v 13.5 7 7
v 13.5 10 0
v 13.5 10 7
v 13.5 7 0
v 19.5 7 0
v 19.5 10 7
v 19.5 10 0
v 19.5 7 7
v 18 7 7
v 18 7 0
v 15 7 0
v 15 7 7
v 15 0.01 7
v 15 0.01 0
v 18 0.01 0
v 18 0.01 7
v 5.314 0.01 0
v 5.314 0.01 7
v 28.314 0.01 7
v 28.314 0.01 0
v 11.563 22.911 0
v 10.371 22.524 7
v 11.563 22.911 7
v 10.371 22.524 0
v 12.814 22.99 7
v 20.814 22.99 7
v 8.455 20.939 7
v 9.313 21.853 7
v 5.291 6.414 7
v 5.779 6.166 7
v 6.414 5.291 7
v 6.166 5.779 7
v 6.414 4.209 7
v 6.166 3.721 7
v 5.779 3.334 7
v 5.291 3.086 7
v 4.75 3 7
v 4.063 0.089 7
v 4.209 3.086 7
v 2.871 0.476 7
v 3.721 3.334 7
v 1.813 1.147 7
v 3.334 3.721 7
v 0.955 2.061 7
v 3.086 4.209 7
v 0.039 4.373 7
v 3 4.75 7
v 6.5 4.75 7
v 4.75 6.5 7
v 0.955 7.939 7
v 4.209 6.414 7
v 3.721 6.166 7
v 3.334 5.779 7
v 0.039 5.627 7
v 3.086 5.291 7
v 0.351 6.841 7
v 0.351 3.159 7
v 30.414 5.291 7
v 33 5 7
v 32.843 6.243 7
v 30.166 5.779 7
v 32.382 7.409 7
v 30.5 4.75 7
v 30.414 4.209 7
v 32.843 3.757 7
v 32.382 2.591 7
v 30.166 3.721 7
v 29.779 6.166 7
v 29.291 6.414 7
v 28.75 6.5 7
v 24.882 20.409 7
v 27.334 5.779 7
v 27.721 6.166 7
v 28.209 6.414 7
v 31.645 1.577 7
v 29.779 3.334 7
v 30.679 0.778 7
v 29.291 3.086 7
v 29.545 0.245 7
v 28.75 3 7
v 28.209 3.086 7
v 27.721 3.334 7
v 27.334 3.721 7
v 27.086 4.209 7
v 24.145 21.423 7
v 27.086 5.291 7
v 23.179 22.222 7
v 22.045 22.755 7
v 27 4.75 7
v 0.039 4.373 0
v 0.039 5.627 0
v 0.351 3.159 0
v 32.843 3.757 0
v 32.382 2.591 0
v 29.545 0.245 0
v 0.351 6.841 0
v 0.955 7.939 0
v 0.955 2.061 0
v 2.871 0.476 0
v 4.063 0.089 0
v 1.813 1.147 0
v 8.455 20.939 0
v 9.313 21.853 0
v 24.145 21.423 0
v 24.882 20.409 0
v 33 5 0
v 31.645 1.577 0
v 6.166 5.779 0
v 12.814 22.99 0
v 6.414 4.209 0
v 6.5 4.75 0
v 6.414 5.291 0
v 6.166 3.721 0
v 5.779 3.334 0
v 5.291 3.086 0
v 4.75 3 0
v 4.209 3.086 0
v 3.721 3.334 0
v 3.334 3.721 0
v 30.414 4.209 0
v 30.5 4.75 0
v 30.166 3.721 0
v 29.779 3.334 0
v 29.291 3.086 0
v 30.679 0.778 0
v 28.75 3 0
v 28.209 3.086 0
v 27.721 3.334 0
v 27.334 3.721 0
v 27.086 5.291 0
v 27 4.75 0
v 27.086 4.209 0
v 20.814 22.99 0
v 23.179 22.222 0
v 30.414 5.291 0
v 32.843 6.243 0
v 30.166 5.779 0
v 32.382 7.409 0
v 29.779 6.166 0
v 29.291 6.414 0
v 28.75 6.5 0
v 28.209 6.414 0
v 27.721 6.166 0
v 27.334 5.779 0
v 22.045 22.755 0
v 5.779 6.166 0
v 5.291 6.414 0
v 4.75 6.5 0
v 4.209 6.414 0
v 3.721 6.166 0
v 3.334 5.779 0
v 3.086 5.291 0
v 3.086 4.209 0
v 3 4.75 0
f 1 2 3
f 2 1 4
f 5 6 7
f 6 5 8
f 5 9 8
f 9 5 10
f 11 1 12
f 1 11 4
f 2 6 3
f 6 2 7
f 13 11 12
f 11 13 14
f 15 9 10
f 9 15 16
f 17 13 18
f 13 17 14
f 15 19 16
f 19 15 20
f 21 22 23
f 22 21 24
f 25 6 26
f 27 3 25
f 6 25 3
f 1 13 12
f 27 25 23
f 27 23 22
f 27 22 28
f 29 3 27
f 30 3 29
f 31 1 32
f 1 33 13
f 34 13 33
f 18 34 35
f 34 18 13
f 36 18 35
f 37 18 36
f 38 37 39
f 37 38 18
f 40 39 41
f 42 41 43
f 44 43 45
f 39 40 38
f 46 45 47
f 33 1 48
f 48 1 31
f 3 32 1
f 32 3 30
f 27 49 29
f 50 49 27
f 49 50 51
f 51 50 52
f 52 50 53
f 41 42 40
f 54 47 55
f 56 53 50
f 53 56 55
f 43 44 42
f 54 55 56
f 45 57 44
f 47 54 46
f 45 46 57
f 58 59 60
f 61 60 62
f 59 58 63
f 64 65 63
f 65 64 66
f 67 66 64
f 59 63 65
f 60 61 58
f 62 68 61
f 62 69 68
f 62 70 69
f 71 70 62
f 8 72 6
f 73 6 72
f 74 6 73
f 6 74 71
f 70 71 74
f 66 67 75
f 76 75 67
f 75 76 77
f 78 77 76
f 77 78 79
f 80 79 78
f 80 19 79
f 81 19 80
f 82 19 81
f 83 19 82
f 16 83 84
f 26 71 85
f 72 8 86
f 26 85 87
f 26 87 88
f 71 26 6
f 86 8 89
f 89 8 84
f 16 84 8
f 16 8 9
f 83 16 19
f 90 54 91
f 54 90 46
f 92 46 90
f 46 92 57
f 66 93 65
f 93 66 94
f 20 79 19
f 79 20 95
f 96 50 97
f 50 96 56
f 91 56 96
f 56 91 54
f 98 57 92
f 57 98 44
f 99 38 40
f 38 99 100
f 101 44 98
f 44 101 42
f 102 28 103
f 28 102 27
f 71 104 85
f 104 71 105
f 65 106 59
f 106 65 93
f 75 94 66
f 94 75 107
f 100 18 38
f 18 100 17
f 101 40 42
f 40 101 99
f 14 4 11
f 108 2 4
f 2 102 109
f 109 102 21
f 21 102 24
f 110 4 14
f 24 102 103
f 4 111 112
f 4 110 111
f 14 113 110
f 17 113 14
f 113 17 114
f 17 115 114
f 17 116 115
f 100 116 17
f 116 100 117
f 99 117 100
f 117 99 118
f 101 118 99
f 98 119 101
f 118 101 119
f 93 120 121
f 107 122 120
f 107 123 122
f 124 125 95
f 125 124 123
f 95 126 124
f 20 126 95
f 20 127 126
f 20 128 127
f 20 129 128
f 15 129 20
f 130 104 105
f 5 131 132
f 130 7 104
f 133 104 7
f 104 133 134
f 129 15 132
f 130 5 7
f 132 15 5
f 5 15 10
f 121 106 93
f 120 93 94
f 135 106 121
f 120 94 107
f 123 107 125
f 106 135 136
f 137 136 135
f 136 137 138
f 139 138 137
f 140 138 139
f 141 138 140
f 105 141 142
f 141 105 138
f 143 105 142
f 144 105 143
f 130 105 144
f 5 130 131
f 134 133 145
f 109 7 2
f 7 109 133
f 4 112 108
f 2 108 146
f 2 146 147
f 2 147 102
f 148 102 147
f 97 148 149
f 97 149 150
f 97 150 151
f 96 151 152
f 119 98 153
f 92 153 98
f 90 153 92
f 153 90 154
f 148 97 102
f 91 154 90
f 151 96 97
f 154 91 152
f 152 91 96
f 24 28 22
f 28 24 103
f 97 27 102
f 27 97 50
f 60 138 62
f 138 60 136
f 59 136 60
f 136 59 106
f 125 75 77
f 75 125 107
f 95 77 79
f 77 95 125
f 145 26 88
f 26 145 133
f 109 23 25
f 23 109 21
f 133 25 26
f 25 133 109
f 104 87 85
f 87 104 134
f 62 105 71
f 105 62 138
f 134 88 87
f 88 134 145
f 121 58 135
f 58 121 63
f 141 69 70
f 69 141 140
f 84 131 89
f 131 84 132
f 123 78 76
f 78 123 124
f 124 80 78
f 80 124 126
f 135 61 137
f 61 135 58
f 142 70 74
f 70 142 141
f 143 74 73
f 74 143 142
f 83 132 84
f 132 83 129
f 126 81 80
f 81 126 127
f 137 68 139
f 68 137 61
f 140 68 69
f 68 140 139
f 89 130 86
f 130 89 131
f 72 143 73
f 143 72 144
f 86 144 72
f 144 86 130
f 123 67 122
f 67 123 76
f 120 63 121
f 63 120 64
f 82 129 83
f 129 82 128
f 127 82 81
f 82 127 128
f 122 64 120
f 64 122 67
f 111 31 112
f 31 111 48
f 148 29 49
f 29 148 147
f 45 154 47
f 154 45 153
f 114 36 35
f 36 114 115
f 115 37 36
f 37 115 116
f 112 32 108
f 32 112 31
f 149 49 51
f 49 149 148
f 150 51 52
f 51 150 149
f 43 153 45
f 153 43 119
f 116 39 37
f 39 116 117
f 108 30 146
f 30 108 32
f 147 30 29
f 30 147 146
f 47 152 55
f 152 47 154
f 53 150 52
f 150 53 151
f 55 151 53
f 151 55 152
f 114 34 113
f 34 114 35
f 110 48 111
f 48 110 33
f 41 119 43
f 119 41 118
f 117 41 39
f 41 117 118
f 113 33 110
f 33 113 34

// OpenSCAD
module frame() {
  polyhedron(
   [[ 0, 0, 0],
    [23, 0, 0],
    [15.5,13, 0],
    [7.5,13, 0],
    [ 0, 0, 6],
    [23,0, 6],
    [15.5,13, 6],
    [7.5,13, 6]]
    ,
   [[0,1,2,3],
    [4,5,1,0],
    [7,6,5,4],
    [5,6,2,1],
    [6,7,3,2],
    [7,4,0,3]]);
}
module screwHole() {
    translate([1.75,1.75,-1])
    color("red")
      cylinder(9,1.75,1.75, $fn=20);
};
module screwHeadHold() {
    union() {
      translate([-1.5,7,-1])
        cube([6,3,9]);
      translate([0,-1,-1])
        cube([3,8,9]);
    };
};

difference() {
  minkowski(){
    translate([5,5,0])
      frame();
    cylinder(r=5,1,$fn=25);
  }
  
  translate([15,0,0])
    screwHeadHold();

  translate ([27,3,0])
    screwHole();
  translate([3,3,0])
    screwHole();
}
